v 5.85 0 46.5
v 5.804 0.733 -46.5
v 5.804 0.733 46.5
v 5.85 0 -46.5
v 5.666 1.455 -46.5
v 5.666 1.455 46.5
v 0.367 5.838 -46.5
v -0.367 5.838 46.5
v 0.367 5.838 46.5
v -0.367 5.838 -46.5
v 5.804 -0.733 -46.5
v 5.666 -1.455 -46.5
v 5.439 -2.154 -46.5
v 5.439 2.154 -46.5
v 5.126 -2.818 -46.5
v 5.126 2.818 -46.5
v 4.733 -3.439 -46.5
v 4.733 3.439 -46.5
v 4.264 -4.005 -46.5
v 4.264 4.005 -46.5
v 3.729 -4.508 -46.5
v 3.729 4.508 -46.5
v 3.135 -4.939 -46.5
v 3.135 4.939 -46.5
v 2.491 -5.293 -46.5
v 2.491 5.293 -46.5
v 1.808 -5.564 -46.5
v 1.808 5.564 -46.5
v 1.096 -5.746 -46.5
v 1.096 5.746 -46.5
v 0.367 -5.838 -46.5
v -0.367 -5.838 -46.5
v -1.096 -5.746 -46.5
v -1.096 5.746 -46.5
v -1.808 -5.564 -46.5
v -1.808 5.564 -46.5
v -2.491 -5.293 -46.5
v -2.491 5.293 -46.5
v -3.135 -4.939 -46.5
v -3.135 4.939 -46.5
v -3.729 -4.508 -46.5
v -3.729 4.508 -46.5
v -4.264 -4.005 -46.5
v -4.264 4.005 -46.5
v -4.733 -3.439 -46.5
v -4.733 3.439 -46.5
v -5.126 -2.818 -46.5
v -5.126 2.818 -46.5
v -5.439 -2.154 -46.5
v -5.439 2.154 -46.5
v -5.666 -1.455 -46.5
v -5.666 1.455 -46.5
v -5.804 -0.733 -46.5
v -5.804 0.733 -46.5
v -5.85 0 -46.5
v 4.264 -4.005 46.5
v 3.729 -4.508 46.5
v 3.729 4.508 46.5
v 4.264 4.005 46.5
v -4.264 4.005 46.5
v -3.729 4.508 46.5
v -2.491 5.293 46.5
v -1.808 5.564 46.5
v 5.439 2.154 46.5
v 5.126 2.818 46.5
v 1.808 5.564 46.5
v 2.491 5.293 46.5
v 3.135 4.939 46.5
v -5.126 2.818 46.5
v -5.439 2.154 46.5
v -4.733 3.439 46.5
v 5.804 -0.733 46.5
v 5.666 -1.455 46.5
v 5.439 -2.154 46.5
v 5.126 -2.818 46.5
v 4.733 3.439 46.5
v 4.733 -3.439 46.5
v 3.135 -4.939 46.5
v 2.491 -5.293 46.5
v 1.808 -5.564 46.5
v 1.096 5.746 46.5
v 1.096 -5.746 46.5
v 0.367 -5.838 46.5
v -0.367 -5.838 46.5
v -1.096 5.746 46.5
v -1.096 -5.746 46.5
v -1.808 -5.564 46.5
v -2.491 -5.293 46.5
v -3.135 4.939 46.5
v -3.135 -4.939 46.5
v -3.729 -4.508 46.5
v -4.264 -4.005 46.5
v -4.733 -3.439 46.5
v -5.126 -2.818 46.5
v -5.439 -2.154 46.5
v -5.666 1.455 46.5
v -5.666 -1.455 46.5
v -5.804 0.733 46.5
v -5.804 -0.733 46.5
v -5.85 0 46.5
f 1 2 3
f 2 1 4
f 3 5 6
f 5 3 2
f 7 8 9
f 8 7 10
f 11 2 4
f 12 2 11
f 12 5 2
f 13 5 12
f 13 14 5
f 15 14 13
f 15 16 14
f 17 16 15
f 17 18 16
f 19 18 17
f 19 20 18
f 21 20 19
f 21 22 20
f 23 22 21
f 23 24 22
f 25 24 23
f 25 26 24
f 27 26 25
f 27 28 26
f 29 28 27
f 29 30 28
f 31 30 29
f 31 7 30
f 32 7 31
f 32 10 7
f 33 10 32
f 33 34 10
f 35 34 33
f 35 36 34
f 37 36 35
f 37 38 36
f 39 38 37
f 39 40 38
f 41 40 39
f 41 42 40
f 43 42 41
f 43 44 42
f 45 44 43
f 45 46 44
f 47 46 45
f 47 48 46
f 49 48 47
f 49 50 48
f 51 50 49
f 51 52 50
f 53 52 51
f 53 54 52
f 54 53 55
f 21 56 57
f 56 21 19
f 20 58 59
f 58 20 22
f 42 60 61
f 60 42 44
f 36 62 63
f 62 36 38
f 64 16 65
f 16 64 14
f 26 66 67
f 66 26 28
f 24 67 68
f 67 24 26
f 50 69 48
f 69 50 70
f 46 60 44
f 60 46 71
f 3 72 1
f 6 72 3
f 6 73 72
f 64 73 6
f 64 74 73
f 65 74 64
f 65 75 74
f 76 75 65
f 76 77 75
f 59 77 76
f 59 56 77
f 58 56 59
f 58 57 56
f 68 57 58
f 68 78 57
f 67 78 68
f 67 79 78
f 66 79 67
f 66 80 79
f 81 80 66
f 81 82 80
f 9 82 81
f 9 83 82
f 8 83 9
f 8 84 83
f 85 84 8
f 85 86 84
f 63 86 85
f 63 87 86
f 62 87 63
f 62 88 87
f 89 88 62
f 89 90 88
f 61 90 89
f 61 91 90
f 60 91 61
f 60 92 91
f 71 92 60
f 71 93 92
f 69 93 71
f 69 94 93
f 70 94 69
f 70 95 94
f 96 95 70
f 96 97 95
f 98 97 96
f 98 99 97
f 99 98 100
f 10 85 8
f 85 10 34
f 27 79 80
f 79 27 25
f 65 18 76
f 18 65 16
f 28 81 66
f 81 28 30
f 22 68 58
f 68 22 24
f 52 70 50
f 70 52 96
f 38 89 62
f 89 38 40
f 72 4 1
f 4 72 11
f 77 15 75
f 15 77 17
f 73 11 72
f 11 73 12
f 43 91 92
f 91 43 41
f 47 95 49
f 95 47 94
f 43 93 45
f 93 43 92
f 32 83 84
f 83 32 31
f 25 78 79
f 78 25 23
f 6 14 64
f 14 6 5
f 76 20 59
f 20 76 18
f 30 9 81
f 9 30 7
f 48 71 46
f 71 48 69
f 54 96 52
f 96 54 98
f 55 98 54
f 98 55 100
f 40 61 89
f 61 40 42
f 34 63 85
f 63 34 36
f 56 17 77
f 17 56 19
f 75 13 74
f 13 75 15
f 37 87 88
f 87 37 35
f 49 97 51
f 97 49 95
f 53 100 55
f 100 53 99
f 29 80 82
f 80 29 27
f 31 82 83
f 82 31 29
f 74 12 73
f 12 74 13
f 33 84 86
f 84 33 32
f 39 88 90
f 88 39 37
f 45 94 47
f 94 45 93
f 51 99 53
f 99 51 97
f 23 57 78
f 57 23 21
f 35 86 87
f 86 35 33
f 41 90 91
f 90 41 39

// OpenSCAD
$fn = 50;


difference() {
	union() {
		translate(v = [0, 0, -46.5000000000]) {
			cylinder(h = 93, r = 5.8500000000);
		}
	}
	union() {
		translate(v = [0, 0, -100.0000000000]) {
			cylinder(h = 200, r = 0);
		}
	}
}
